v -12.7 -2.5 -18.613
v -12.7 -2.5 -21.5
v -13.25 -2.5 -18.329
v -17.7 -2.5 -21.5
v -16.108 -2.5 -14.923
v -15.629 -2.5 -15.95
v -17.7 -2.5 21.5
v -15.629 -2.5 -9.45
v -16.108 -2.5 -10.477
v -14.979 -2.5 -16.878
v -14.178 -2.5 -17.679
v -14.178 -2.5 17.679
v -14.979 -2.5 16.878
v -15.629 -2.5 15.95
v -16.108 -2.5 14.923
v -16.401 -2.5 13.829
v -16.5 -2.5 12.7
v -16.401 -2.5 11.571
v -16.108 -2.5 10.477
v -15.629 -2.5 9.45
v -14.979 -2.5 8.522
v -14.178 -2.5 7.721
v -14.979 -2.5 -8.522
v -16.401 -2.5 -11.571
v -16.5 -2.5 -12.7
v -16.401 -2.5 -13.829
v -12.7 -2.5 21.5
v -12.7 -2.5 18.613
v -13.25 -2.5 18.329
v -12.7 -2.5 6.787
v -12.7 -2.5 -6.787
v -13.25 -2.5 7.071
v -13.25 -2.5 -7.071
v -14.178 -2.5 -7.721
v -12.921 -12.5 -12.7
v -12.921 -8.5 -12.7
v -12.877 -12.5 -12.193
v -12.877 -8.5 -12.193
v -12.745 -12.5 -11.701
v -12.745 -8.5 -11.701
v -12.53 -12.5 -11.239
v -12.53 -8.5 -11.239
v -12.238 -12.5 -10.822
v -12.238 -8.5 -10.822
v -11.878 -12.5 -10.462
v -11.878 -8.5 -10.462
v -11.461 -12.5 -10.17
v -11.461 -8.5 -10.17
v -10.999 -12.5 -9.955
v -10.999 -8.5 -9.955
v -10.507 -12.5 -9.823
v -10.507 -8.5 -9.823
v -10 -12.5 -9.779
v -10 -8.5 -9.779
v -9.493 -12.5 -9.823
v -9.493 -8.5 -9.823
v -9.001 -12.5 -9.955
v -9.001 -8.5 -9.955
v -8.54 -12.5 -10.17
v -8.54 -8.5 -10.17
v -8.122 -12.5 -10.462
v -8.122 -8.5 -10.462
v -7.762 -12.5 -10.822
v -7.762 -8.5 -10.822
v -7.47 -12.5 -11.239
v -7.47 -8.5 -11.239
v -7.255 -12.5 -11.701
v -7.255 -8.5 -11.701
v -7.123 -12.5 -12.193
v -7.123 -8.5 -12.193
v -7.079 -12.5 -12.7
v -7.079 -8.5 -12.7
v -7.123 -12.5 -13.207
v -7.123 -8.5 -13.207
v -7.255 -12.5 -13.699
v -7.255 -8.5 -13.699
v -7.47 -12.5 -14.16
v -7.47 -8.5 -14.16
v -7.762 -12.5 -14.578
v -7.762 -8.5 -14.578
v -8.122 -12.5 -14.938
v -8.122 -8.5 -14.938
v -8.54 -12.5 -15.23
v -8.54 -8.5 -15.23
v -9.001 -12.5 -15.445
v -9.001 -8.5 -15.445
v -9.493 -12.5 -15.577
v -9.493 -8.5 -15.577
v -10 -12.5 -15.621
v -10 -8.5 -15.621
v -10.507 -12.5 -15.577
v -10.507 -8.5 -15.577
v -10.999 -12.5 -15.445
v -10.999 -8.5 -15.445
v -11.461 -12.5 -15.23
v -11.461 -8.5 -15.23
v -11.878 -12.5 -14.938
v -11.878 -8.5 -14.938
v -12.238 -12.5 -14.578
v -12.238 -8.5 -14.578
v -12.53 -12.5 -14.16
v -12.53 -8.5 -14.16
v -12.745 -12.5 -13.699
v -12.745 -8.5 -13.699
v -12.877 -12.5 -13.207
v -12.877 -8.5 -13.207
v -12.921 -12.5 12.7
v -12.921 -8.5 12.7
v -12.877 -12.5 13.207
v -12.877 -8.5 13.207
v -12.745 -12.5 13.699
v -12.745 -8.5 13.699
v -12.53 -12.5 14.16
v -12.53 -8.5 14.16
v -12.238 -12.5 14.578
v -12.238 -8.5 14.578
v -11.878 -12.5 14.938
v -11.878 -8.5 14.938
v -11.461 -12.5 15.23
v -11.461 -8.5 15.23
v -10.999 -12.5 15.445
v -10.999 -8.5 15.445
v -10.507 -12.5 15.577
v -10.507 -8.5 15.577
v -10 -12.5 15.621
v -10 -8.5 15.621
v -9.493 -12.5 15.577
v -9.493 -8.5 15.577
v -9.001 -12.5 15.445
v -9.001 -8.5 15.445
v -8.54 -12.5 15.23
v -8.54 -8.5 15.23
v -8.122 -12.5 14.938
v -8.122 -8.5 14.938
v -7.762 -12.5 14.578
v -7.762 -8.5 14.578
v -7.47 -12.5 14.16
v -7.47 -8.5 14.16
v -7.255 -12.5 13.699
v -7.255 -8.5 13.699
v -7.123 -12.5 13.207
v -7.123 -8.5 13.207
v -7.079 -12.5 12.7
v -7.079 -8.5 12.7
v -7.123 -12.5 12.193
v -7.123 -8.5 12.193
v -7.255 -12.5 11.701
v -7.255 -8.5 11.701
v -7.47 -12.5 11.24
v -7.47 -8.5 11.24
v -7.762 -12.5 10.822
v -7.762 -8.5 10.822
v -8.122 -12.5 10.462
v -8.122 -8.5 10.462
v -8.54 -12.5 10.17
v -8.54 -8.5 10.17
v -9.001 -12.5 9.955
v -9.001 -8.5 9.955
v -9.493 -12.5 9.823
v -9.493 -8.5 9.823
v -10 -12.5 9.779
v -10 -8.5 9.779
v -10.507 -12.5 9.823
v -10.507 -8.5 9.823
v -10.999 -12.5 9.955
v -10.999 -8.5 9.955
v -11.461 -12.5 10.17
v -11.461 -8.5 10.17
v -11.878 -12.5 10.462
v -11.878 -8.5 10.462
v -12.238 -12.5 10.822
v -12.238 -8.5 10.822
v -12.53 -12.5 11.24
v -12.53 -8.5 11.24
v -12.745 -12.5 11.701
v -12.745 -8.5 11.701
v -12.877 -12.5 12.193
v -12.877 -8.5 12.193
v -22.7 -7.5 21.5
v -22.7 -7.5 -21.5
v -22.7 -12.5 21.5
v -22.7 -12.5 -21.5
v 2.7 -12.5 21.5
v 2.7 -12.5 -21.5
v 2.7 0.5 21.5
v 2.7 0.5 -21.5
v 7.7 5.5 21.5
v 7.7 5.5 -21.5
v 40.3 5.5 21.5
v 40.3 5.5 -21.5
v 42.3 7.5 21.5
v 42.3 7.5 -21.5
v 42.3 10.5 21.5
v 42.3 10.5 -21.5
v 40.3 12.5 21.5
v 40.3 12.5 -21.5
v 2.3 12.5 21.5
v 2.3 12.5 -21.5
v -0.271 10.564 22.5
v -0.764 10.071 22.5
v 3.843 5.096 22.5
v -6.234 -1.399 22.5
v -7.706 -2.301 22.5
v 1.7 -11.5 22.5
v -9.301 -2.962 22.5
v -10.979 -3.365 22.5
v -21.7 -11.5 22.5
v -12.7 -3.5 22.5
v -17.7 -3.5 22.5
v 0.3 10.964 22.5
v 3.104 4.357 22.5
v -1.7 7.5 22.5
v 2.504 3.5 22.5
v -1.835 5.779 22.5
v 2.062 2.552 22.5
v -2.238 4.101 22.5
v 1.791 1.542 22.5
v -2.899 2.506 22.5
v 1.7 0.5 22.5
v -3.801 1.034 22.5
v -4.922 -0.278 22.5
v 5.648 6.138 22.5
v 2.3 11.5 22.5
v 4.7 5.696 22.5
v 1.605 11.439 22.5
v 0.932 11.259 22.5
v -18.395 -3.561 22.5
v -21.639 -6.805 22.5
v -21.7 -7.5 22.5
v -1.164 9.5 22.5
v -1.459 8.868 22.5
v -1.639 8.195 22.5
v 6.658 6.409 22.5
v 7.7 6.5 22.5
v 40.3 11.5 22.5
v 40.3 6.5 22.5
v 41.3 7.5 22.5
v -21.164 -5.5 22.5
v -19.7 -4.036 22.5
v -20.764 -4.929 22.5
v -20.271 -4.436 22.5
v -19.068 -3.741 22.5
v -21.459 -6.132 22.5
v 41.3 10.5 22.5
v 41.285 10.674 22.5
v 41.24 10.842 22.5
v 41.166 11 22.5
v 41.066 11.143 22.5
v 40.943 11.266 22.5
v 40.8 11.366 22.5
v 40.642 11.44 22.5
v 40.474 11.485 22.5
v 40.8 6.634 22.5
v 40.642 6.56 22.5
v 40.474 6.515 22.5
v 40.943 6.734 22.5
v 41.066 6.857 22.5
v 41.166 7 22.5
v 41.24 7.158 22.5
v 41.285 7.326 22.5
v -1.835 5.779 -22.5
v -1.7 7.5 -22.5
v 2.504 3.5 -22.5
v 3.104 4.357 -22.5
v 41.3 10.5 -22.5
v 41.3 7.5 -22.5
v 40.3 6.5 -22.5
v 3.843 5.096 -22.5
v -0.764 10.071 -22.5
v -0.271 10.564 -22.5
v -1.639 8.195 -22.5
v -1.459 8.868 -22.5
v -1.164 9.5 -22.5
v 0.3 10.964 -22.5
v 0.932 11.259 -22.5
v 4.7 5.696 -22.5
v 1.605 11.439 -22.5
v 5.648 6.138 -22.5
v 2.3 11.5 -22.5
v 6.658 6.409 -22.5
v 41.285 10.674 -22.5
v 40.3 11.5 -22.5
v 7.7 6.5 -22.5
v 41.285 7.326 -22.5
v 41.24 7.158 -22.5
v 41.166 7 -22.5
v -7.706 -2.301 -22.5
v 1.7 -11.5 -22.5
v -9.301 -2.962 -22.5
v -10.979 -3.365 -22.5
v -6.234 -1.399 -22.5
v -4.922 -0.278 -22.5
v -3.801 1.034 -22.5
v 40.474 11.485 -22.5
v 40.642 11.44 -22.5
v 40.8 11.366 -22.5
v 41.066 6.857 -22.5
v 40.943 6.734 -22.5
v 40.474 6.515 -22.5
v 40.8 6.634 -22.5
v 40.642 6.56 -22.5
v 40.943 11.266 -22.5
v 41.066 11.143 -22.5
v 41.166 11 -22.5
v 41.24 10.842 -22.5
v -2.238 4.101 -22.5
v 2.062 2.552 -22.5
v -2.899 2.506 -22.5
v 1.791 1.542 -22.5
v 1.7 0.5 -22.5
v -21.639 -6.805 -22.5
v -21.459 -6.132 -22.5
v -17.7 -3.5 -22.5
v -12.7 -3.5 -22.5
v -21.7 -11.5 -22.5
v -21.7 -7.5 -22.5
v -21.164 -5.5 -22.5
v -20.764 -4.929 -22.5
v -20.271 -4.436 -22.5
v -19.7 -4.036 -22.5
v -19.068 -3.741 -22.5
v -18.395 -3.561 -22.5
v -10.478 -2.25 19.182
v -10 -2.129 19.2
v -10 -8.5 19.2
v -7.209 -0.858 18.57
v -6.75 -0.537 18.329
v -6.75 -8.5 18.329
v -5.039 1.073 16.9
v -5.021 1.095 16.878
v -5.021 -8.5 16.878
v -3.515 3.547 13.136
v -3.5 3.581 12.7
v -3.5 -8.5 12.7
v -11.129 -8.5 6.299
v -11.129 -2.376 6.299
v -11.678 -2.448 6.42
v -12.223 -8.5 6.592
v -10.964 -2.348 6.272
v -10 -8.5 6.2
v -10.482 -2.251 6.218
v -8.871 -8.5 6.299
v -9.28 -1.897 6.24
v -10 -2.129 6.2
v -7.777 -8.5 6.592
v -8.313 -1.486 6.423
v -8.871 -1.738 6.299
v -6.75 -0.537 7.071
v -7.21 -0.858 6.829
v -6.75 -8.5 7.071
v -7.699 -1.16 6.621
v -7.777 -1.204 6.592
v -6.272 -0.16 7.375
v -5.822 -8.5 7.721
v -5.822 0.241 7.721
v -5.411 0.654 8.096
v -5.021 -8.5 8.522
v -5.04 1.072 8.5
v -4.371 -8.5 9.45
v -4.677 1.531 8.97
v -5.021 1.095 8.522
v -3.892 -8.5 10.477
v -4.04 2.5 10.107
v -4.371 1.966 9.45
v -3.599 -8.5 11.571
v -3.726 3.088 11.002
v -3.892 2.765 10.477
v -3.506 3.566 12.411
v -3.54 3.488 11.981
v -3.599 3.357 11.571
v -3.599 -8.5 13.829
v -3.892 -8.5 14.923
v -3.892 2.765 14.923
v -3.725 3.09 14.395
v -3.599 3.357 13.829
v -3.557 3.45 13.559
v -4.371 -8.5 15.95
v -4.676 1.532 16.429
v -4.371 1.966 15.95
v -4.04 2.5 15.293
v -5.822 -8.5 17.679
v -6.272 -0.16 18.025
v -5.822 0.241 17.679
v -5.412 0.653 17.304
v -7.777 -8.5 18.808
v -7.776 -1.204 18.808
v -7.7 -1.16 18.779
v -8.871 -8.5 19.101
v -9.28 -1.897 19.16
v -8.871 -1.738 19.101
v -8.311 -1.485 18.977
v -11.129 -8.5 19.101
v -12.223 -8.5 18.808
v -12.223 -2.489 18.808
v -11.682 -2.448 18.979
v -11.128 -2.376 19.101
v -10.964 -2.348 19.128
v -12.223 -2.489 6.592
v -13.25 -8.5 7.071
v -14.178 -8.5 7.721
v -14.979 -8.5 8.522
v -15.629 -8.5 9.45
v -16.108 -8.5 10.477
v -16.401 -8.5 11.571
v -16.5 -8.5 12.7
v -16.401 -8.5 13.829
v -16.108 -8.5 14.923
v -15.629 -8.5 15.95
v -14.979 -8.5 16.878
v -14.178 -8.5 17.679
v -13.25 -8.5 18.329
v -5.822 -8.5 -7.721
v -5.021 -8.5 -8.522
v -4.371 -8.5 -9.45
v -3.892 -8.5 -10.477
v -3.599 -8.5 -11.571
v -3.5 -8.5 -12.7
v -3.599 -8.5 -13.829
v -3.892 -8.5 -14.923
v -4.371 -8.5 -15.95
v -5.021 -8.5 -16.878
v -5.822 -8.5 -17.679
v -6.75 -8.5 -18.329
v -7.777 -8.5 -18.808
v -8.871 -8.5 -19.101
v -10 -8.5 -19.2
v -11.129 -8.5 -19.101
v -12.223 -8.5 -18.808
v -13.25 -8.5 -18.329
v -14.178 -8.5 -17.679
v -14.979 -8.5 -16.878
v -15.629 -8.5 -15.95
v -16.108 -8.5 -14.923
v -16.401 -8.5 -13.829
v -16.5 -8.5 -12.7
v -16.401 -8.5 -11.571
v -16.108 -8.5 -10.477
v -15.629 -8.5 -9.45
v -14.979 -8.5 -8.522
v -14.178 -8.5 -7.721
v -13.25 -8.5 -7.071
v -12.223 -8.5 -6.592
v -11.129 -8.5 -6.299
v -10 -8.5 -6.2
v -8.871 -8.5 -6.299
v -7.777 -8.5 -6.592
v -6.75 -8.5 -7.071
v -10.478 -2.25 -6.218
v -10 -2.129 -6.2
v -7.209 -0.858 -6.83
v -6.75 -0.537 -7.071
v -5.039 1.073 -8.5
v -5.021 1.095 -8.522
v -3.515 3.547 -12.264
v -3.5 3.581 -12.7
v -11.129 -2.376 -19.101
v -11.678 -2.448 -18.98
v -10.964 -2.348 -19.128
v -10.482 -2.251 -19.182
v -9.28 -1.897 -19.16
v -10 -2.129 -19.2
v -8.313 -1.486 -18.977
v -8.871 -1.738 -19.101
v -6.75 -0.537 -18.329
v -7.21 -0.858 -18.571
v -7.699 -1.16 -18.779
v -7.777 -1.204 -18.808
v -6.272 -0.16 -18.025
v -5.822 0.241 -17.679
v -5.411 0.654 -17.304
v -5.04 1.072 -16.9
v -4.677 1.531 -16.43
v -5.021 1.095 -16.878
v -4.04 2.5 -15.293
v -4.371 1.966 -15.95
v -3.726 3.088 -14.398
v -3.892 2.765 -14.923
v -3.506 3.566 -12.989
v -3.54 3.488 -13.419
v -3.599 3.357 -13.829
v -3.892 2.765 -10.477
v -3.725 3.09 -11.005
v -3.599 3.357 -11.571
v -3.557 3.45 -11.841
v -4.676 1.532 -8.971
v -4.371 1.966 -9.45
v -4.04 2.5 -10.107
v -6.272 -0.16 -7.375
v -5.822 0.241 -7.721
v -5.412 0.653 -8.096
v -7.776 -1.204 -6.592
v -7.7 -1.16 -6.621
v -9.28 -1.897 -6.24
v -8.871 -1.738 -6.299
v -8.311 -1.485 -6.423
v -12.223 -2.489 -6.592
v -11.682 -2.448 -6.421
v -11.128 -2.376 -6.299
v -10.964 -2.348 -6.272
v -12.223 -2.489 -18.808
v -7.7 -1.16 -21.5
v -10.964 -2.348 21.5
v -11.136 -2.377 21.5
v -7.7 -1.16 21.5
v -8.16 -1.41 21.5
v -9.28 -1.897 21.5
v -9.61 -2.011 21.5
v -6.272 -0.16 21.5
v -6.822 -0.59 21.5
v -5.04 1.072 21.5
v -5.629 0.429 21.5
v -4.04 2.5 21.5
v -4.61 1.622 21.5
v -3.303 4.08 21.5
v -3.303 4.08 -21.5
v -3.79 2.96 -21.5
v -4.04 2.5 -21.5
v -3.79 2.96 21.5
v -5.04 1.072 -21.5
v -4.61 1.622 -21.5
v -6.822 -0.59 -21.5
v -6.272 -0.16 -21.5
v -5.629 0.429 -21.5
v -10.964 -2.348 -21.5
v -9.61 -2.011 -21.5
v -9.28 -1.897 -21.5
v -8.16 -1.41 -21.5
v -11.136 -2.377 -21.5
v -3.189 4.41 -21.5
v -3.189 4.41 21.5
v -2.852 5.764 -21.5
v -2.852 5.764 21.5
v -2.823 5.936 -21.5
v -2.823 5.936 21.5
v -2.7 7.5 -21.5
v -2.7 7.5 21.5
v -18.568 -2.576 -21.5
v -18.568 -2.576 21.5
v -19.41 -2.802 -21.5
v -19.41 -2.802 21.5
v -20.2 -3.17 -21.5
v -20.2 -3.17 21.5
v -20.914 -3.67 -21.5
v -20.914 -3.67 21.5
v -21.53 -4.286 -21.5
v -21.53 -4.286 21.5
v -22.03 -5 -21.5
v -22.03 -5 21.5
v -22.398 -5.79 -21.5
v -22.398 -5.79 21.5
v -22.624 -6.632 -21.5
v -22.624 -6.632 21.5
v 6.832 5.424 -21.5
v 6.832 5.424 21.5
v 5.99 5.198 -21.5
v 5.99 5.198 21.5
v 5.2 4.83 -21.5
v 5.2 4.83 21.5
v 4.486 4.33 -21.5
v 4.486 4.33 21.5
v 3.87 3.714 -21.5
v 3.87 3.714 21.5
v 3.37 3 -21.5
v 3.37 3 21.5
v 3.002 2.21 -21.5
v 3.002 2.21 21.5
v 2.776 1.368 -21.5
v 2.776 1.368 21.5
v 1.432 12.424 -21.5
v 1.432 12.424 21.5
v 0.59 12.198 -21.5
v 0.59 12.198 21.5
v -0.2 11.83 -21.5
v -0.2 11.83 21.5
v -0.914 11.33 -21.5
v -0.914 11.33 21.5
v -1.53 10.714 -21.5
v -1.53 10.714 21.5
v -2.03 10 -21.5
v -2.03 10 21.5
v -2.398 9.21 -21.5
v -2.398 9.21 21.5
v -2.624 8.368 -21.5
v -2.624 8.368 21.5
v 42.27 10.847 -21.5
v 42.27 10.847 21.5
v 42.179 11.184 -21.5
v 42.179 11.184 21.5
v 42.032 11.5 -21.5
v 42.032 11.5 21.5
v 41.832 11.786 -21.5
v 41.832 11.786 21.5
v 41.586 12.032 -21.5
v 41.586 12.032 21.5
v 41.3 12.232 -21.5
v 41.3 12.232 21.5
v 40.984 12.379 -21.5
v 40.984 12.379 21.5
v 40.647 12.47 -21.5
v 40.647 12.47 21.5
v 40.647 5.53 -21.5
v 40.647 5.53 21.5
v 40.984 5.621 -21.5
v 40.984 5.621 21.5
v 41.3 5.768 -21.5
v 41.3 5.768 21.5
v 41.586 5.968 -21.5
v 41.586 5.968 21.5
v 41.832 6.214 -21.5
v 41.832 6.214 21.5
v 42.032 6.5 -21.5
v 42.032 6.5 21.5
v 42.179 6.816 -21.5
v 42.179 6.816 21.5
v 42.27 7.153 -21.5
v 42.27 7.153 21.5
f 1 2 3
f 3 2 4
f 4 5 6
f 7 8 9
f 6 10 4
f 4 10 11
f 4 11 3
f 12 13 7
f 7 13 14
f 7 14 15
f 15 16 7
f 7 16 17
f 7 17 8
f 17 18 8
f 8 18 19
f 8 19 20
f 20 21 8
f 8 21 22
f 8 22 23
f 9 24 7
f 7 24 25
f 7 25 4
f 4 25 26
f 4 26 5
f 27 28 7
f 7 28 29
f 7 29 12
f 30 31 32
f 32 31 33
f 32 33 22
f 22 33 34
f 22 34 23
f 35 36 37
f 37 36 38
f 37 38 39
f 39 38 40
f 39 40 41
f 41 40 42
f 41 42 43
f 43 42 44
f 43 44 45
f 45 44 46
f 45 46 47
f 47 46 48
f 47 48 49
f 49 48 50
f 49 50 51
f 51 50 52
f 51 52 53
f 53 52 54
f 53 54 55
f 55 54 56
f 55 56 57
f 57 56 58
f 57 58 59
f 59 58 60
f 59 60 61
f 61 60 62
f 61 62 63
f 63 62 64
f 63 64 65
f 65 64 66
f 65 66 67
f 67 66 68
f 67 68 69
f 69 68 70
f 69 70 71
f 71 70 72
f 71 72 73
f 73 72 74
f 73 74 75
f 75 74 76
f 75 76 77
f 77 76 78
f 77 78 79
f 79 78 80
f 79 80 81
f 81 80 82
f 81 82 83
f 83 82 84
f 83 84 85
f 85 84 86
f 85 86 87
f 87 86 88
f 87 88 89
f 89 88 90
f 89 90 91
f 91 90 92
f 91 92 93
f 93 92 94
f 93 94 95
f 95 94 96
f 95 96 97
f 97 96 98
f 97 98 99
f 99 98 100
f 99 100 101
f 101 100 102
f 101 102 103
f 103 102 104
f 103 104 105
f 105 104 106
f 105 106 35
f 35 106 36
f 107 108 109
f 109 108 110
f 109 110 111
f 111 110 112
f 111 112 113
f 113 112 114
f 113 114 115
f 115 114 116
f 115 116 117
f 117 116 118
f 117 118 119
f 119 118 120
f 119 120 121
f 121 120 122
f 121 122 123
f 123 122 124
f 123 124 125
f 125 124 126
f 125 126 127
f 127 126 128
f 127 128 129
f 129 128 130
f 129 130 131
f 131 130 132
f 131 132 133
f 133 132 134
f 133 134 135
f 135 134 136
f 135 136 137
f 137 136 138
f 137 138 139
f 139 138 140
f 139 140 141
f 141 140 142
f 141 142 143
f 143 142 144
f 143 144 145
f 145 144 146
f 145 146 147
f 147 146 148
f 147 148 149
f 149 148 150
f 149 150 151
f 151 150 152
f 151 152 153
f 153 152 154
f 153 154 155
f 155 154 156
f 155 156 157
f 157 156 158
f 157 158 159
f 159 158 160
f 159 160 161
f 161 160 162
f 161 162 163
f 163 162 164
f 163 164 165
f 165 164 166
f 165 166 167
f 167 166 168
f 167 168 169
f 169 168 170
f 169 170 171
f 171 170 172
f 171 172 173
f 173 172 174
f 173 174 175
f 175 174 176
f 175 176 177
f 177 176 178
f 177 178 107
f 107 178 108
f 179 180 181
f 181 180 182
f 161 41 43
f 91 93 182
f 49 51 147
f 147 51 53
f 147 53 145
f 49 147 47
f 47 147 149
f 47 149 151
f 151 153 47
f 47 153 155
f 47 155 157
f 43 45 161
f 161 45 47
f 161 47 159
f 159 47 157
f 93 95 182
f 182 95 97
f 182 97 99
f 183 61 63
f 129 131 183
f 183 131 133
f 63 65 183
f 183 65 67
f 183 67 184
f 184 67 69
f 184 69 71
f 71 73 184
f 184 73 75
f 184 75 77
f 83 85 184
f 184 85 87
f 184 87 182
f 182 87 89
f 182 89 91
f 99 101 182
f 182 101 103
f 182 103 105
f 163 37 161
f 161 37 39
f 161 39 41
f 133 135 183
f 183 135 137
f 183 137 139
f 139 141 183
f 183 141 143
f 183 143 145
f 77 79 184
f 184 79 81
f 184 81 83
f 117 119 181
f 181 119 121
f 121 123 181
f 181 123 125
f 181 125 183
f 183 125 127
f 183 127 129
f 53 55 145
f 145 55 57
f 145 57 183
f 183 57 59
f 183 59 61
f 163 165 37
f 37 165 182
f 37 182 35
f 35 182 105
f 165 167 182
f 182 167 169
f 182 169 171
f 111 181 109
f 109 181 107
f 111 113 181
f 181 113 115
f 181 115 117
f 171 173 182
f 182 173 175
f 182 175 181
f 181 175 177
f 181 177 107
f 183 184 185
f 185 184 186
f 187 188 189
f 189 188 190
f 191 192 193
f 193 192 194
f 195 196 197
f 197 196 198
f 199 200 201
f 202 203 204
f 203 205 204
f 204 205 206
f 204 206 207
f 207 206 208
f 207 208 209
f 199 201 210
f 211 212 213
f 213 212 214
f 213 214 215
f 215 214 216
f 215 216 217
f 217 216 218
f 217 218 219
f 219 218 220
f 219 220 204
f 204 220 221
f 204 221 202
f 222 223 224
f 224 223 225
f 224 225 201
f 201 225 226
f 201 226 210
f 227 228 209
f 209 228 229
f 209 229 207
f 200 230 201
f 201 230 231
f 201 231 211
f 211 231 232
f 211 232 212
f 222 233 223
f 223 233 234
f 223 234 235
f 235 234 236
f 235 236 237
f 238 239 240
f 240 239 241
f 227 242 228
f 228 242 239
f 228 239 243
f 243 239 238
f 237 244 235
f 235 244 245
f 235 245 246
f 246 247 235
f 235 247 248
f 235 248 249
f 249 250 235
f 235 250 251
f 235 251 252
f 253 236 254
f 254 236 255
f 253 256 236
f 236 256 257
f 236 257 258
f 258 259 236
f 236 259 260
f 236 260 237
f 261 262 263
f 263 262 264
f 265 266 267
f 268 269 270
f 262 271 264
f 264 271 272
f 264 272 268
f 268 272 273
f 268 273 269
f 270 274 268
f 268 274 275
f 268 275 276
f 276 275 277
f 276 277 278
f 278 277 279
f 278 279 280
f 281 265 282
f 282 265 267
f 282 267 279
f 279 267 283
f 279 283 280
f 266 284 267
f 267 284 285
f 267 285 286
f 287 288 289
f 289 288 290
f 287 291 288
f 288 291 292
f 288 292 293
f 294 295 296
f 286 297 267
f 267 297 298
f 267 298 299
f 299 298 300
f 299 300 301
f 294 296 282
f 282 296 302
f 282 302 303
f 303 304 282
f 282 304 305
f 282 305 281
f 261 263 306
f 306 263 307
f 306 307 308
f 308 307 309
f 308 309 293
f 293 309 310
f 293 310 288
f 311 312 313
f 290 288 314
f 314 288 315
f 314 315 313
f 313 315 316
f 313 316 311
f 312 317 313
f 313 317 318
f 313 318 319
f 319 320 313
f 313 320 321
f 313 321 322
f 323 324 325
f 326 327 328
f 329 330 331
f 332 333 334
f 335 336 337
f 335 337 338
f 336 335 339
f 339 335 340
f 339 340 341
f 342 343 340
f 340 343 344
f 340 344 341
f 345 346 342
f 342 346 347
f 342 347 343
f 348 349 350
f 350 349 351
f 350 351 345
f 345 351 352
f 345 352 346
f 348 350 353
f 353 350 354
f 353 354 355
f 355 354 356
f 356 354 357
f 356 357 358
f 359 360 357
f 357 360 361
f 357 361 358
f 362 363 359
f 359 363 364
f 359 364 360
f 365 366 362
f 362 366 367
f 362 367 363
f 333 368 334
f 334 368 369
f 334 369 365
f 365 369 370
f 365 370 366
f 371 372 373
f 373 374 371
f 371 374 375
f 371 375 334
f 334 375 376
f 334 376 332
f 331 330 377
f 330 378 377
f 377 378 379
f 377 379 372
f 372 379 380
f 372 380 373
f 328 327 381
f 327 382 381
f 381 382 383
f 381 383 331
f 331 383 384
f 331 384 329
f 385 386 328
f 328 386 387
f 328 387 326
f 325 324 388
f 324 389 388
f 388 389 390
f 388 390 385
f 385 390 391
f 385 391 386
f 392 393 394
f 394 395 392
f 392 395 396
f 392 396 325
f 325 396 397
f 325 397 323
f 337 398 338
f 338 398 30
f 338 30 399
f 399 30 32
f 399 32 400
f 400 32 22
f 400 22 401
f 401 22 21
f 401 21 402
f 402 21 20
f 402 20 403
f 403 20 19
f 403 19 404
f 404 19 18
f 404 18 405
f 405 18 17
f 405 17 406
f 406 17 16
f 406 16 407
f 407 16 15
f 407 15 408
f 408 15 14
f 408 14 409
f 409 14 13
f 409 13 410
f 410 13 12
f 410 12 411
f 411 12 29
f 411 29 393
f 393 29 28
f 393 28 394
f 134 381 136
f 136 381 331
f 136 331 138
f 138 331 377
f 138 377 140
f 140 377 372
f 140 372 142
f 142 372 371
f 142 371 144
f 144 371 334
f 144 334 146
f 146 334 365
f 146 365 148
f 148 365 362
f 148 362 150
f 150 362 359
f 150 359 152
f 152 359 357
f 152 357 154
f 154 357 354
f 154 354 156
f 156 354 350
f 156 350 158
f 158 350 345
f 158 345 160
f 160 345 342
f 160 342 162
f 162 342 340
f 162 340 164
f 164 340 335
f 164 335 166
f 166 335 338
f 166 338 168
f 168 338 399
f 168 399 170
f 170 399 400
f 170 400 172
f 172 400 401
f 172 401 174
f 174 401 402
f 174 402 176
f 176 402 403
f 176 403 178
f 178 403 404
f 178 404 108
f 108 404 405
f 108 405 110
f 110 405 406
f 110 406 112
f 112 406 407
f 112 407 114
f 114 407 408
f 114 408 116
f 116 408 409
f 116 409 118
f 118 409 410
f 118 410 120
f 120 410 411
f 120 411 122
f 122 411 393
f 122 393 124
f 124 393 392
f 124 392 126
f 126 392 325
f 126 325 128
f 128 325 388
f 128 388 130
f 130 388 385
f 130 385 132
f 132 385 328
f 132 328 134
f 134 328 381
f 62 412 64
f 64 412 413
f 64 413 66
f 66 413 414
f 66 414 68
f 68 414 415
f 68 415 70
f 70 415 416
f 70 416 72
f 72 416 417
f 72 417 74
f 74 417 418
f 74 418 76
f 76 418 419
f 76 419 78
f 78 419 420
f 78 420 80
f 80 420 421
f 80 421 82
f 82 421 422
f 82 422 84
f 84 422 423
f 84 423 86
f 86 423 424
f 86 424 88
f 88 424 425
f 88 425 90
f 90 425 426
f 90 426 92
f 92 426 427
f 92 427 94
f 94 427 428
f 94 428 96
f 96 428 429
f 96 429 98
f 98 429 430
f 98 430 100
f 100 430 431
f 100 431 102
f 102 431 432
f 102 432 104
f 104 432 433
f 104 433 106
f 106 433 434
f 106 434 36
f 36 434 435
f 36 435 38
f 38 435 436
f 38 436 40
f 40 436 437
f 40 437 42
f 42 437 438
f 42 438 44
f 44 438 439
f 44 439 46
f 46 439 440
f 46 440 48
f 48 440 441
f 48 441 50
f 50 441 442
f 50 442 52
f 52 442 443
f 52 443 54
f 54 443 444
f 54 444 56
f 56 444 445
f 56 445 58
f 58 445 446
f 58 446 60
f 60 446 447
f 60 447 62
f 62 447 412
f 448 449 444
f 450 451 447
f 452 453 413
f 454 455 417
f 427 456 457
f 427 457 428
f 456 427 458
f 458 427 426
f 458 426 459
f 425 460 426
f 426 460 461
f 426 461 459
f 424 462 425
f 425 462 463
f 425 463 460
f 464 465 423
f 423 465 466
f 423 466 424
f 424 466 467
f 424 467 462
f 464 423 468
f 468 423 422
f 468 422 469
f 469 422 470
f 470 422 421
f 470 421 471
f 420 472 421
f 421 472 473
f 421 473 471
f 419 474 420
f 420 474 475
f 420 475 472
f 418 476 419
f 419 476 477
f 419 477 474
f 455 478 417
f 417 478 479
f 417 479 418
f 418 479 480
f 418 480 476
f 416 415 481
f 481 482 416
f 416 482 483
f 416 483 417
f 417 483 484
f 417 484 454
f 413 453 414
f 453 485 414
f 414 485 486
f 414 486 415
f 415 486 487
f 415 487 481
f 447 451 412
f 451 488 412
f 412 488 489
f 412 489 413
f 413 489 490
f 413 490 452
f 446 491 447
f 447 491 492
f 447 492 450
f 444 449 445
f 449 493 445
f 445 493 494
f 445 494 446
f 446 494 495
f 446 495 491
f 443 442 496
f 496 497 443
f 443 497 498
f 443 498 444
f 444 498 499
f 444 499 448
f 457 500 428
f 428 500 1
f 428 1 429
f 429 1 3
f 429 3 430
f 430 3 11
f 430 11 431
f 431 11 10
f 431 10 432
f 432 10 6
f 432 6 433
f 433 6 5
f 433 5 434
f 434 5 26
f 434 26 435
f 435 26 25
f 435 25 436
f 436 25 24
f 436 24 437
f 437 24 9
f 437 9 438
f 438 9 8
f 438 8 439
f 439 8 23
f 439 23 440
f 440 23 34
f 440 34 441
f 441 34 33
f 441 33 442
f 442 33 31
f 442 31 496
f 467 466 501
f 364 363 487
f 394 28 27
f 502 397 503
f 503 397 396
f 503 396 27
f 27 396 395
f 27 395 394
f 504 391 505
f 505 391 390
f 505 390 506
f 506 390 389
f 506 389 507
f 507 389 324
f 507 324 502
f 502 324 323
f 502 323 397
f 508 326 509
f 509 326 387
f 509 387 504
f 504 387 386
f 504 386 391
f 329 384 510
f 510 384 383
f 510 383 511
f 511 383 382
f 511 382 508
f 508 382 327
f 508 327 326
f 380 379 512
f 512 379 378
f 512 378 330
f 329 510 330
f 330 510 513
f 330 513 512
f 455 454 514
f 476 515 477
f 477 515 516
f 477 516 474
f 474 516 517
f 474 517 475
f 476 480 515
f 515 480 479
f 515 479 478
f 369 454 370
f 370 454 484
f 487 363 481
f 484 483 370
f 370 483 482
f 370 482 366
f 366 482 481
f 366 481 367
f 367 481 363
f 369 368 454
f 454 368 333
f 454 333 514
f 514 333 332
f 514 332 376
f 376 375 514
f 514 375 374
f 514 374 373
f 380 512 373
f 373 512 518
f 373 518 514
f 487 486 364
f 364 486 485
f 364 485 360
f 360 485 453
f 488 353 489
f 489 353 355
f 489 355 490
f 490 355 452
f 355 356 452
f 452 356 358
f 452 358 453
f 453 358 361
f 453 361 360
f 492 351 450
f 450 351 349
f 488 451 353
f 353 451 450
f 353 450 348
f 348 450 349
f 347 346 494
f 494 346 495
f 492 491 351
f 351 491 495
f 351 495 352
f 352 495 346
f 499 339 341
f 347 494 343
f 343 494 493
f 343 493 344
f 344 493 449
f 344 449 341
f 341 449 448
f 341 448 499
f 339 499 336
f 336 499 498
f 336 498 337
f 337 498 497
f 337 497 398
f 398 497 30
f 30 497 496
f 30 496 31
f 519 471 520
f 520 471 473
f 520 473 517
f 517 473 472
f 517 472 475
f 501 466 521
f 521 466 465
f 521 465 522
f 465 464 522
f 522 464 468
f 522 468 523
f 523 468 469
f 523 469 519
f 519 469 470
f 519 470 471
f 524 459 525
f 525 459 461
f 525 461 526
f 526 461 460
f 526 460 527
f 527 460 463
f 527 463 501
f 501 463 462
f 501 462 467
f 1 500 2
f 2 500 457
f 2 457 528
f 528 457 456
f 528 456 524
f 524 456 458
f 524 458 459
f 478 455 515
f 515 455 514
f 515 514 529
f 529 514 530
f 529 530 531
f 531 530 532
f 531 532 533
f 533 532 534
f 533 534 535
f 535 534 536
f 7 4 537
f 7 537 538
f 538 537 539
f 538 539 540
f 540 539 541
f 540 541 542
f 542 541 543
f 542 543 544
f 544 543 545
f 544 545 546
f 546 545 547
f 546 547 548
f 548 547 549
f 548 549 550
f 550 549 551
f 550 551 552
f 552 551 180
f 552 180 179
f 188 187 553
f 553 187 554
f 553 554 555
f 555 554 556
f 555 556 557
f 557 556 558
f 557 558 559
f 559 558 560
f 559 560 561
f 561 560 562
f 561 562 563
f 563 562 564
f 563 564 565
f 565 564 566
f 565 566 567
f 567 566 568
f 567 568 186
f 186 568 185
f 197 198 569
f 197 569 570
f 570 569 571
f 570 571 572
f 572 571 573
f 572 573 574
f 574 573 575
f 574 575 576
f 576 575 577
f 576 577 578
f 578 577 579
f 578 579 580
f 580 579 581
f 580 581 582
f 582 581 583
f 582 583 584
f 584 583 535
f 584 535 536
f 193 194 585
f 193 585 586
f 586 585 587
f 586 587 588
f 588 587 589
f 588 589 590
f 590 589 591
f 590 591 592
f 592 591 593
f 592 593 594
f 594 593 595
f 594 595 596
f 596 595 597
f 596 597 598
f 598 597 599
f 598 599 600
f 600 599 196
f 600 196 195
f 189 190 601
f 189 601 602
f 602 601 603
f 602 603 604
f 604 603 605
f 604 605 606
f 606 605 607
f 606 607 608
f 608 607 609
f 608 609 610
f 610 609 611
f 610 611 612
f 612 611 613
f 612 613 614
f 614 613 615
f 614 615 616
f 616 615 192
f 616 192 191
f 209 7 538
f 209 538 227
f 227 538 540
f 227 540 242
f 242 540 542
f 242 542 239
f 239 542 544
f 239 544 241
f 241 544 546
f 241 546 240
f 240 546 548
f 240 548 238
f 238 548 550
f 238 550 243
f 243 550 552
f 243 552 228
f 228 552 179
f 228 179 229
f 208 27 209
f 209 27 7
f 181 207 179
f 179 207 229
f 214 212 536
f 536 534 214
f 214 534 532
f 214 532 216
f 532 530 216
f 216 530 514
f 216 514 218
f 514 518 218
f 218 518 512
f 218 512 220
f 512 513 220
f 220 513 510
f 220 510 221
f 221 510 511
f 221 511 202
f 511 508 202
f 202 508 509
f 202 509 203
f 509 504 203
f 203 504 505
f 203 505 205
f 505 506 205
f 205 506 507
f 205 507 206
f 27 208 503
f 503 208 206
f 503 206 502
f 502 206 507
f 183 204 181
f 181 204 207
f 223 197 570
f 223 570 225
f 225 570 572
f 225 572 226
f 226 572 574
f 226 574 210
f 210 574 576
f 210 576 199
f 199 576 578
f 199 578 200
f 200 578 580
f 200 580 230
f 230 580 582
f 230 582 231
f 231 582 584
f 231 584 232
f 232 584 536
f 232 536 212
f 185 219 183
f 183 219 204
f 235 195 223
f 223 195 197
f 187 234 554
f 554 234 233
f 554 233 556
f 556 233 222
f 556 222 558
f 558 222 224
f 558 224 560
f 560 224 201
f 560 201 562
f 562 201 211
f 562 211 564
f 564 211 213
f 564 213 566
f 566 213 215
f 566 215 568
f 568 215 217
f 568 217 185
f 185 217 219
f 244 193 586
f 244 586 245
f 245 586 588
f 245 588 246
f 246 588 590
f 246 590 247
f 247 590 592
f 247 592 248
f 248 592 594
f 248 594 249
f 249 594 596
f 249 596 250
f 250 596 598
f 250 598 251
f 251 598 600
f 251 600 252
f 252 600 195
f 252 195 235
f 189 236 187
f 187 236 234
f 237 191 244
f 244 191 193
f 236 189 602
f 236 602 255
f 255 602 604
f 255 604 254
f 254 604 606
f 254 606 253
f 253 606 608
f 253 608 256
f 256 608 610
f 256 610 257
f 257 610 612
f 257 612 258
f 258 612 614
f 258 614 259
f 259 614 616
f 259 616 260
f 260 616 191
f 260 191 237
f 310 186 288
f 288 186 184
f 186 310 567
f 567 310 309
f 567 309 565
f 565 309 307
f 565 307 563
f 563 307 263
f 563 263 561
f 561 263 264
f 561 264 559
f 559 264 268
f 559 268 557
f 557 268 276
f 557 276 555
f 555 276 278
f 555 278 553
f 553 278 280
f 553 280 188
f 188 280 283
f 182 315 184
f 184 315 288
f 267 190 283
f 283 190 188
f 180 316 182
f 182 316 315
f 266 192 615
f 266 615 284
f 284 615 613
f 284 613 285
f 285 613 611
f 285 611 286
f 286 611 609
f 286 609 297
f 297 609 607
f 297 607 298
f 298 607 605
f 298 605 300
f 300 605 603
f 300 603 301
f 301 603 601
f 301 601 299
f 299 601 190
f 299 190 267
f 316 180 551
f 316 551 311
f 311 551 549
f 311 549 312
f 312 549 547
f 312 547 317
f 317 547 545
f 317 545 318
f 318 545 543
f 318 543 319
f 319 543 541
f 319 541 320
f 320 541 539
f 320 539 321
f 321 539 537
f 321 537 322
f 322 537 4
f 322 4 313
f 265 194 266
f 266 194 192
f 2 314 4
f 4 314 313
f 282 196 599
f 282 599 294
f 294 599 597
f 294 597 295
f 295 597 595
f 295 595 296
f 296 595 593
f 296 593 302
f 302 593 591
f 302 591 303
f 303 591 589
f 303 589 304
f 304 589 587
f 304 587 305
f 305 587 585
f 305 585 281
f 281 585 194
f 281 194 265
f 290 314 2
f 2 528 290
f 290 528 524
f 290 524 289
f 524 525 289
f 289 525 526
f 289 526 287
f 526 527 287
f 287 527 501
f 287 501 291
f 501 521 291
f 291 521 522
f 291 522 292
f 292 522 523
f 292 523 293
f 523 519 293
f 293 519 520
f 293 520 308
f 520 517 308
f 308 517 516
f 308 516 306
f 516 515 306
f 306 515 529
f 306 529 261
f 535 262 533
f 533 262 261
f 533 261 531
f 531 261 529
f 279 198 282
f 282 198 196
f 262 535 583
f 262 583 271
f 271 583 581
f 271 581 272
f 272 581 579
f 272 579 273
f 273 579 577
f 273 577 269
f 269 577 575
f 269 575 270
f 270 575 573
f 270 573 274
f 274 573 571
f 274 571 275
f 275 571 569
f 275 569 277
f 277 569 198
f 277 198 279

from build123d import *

# Parameters (mm, degrees)
BOSS_EXTRUDE1_DEPTH = 22.5
SKETCH3_R           = 2.921
CUT_EXTRUDE1_DEPTH  = 51.204979833
SKETCH3_4_R         = 6.5
SKETCH3_4_R_2       = 2.921
CUT_EXTRUDE2_DEPTH  = 6
FILLET1_R           = 10
FILLET2_R           = 5
FILLET4_R           = 2
CHAMFER1_SIZE       = 1


# Some blends are built 0.0001 mm under size
with BuildPart() as part:
    # Sketch1 → Boss-Extrude1 (new, symmetric)
    with BuildSketch(Plane.XY):
        Polygon((-22.7, -12.5), (2.7, -12.5), (2.7, 5.5), (42.3, 5.5), (42.3, 12.5), (-2.7, 12.5), (-2.7, -2.5), (-22.7, -2.5), align=None)
    extrude(amount=BOSS_EXTRUDE1_DEPTH, both=True)

    # Sketch3 → Cut-Extrude1 (cut, through all)
    with BuildSketch(Plane(origin=(0, -2.5, 0), x_dir=(1, 0, 0), z_dir=(0, 1, 0))):
        with Locations(Location((-10, -12.7, 0), (0, 0, 180))):
            Circle(SKETCH3_R)
    cut_extrude1 = extrude(amount=-CUT_EXTRUDE1_DEPTH, mode=Mode.SUBTRACT)

    # Sketch3<4> → Cut-Extrude2 (cut)
    with BuildSketch(Plane(origin=(0, -2.5, 0), x_dir=(1, 0, 0), z_dir=(0, 1, 0))):
        with Locations(Location((-10, -12.7, 0), (0, 0, 180))):
            Circle(SKETCH3_4_R)
        with Locations(Location((-10, -12.7, 0), (0, 0, 180))):
            Circle(SKETCH3_4_R_2, mode=Mode.SUBTRACT)
    cut_extrude2 = extrude(amount=-CUT_EXTRUDE2_DEPTH, mode=Mode.SUBTRACT)

    # Mirror1: Cut-Extrude1, Cut-Extrude2 across plane
    add(cut_extrude1.mirror(Plane.XY), mode=Mode.SUBTRACT)
    add(cut_extrude2.mirror(Plane.XY), mode=Mode.SUBTRACT)

    # Fillet1
    # the kernel refuses this fillet: 10 mm, written as the material it adds along each edge
    with BuildSketch(Plane(origin=(-2.7, -2.5, 22.5), x_dir=(0, 1, 0), z_dir=(0, 0, -1))) as fillet1_piece_1_section:
        with BuildLine():
            CenterArc((FILLET1_R, -FILLET1_R), FILLET1_R, 90, 90)
            Line((0, -FILLET1_R), (0, 0))
            Line((0, 0), (FILLET1_R, 0))
        make_face()
    fillet1_piece_1 = extrude(amount=45, mode=Mode.PRIVATE)
    fillet1_piece_1 = fillet1_piece_1 - Plane(origin=(-10, 0.155378063, -12.7), x_dir=(-1, 0, 0), z_dir=(0, 1, 0)) * Cylinder(6.5, 130, mode=Mode.PRIVATE)
    fillet1_piece_1 = fillet1_piece_1 - Plane(origin=(-10, 0.155378063, 12.7), x_dir=(-1, 0, 0), z_dir=(0, 1, 0)) * Cylinder(6.5, 130, mode=Mode.PRIVATE)
    add(fillet1_piece_1)

    # Fillet2
    fillet2_edges = [part.edges().sort_by_distance(p)[0] for p in [
        (2.7, 5.5, 0),
        (-22.7, -2.5, 0),
        (-2.7, 12.5, 0),
    ]]
    fillet(fillet2_edges, radius=FILLET2_R - 0.0001)  # a hair under: the kernel refuses the full size

    # Fillet4
    fillet4_edges = [part.edges().sort_by_distance(p)[0] for p in [
        (42.3, 12.5, 0),
        (42.3, 5.5, 0),
    ]]
    fillet(fillet4_edges, radius=FILLET4_R)

    # Chamfer1
    chamfer1_edges = [part.edges().sort_by_distance(p)[0] for p in [
        (2.7, -5.99995, -22.5),
        (-10, -12.5, -22.5),
        (2.7, -5.99995, 22.5),
        (-15.20005, -2.5, -22.5),
        (-15.20005, -2.5, 22.5),
        (-5.628932188, 0.428932188, -22.5),
        (-5.628932188, 0.428932188, 22.5),
        (-22.7, -9.99995, -22.5),
        (-22.7, -9.99995, 22.5),
        (23.99995, 5.5, -22.5),
        (-1.235563195, 11.035563195, -22.5),
        (-21.235563195, -3.964436805, -22.5),
        (23.99995, 5.5, 22.5),
        (-1.235563195, 11.035563195, 22.5),
        (-21.235563195, -3.964436805, 22.5),
        (4.164436805, 4.035563195, -22.5),
        (4.164436805, 4.035563195, 22.5),
        (21.29995, 12.5, -22.5),
        (21.29995, 12.5, 22.5),
        (42.3, 9, -22.5),
        (41.714213562, 6.085786438, -22.5),
        (41.714213562, 11.914213562, -22.5),
        (42.3, 9, 22.5),
        (41.714213562, 6.085786438, 22.5),
        (41.714213562, 11.914213562, 22.5),
        (-10, -12.5, 22.5),
    ]]
    chamfer(chamfer1_edges, length=CHAMFER1_SIZE)


solid = part.part
